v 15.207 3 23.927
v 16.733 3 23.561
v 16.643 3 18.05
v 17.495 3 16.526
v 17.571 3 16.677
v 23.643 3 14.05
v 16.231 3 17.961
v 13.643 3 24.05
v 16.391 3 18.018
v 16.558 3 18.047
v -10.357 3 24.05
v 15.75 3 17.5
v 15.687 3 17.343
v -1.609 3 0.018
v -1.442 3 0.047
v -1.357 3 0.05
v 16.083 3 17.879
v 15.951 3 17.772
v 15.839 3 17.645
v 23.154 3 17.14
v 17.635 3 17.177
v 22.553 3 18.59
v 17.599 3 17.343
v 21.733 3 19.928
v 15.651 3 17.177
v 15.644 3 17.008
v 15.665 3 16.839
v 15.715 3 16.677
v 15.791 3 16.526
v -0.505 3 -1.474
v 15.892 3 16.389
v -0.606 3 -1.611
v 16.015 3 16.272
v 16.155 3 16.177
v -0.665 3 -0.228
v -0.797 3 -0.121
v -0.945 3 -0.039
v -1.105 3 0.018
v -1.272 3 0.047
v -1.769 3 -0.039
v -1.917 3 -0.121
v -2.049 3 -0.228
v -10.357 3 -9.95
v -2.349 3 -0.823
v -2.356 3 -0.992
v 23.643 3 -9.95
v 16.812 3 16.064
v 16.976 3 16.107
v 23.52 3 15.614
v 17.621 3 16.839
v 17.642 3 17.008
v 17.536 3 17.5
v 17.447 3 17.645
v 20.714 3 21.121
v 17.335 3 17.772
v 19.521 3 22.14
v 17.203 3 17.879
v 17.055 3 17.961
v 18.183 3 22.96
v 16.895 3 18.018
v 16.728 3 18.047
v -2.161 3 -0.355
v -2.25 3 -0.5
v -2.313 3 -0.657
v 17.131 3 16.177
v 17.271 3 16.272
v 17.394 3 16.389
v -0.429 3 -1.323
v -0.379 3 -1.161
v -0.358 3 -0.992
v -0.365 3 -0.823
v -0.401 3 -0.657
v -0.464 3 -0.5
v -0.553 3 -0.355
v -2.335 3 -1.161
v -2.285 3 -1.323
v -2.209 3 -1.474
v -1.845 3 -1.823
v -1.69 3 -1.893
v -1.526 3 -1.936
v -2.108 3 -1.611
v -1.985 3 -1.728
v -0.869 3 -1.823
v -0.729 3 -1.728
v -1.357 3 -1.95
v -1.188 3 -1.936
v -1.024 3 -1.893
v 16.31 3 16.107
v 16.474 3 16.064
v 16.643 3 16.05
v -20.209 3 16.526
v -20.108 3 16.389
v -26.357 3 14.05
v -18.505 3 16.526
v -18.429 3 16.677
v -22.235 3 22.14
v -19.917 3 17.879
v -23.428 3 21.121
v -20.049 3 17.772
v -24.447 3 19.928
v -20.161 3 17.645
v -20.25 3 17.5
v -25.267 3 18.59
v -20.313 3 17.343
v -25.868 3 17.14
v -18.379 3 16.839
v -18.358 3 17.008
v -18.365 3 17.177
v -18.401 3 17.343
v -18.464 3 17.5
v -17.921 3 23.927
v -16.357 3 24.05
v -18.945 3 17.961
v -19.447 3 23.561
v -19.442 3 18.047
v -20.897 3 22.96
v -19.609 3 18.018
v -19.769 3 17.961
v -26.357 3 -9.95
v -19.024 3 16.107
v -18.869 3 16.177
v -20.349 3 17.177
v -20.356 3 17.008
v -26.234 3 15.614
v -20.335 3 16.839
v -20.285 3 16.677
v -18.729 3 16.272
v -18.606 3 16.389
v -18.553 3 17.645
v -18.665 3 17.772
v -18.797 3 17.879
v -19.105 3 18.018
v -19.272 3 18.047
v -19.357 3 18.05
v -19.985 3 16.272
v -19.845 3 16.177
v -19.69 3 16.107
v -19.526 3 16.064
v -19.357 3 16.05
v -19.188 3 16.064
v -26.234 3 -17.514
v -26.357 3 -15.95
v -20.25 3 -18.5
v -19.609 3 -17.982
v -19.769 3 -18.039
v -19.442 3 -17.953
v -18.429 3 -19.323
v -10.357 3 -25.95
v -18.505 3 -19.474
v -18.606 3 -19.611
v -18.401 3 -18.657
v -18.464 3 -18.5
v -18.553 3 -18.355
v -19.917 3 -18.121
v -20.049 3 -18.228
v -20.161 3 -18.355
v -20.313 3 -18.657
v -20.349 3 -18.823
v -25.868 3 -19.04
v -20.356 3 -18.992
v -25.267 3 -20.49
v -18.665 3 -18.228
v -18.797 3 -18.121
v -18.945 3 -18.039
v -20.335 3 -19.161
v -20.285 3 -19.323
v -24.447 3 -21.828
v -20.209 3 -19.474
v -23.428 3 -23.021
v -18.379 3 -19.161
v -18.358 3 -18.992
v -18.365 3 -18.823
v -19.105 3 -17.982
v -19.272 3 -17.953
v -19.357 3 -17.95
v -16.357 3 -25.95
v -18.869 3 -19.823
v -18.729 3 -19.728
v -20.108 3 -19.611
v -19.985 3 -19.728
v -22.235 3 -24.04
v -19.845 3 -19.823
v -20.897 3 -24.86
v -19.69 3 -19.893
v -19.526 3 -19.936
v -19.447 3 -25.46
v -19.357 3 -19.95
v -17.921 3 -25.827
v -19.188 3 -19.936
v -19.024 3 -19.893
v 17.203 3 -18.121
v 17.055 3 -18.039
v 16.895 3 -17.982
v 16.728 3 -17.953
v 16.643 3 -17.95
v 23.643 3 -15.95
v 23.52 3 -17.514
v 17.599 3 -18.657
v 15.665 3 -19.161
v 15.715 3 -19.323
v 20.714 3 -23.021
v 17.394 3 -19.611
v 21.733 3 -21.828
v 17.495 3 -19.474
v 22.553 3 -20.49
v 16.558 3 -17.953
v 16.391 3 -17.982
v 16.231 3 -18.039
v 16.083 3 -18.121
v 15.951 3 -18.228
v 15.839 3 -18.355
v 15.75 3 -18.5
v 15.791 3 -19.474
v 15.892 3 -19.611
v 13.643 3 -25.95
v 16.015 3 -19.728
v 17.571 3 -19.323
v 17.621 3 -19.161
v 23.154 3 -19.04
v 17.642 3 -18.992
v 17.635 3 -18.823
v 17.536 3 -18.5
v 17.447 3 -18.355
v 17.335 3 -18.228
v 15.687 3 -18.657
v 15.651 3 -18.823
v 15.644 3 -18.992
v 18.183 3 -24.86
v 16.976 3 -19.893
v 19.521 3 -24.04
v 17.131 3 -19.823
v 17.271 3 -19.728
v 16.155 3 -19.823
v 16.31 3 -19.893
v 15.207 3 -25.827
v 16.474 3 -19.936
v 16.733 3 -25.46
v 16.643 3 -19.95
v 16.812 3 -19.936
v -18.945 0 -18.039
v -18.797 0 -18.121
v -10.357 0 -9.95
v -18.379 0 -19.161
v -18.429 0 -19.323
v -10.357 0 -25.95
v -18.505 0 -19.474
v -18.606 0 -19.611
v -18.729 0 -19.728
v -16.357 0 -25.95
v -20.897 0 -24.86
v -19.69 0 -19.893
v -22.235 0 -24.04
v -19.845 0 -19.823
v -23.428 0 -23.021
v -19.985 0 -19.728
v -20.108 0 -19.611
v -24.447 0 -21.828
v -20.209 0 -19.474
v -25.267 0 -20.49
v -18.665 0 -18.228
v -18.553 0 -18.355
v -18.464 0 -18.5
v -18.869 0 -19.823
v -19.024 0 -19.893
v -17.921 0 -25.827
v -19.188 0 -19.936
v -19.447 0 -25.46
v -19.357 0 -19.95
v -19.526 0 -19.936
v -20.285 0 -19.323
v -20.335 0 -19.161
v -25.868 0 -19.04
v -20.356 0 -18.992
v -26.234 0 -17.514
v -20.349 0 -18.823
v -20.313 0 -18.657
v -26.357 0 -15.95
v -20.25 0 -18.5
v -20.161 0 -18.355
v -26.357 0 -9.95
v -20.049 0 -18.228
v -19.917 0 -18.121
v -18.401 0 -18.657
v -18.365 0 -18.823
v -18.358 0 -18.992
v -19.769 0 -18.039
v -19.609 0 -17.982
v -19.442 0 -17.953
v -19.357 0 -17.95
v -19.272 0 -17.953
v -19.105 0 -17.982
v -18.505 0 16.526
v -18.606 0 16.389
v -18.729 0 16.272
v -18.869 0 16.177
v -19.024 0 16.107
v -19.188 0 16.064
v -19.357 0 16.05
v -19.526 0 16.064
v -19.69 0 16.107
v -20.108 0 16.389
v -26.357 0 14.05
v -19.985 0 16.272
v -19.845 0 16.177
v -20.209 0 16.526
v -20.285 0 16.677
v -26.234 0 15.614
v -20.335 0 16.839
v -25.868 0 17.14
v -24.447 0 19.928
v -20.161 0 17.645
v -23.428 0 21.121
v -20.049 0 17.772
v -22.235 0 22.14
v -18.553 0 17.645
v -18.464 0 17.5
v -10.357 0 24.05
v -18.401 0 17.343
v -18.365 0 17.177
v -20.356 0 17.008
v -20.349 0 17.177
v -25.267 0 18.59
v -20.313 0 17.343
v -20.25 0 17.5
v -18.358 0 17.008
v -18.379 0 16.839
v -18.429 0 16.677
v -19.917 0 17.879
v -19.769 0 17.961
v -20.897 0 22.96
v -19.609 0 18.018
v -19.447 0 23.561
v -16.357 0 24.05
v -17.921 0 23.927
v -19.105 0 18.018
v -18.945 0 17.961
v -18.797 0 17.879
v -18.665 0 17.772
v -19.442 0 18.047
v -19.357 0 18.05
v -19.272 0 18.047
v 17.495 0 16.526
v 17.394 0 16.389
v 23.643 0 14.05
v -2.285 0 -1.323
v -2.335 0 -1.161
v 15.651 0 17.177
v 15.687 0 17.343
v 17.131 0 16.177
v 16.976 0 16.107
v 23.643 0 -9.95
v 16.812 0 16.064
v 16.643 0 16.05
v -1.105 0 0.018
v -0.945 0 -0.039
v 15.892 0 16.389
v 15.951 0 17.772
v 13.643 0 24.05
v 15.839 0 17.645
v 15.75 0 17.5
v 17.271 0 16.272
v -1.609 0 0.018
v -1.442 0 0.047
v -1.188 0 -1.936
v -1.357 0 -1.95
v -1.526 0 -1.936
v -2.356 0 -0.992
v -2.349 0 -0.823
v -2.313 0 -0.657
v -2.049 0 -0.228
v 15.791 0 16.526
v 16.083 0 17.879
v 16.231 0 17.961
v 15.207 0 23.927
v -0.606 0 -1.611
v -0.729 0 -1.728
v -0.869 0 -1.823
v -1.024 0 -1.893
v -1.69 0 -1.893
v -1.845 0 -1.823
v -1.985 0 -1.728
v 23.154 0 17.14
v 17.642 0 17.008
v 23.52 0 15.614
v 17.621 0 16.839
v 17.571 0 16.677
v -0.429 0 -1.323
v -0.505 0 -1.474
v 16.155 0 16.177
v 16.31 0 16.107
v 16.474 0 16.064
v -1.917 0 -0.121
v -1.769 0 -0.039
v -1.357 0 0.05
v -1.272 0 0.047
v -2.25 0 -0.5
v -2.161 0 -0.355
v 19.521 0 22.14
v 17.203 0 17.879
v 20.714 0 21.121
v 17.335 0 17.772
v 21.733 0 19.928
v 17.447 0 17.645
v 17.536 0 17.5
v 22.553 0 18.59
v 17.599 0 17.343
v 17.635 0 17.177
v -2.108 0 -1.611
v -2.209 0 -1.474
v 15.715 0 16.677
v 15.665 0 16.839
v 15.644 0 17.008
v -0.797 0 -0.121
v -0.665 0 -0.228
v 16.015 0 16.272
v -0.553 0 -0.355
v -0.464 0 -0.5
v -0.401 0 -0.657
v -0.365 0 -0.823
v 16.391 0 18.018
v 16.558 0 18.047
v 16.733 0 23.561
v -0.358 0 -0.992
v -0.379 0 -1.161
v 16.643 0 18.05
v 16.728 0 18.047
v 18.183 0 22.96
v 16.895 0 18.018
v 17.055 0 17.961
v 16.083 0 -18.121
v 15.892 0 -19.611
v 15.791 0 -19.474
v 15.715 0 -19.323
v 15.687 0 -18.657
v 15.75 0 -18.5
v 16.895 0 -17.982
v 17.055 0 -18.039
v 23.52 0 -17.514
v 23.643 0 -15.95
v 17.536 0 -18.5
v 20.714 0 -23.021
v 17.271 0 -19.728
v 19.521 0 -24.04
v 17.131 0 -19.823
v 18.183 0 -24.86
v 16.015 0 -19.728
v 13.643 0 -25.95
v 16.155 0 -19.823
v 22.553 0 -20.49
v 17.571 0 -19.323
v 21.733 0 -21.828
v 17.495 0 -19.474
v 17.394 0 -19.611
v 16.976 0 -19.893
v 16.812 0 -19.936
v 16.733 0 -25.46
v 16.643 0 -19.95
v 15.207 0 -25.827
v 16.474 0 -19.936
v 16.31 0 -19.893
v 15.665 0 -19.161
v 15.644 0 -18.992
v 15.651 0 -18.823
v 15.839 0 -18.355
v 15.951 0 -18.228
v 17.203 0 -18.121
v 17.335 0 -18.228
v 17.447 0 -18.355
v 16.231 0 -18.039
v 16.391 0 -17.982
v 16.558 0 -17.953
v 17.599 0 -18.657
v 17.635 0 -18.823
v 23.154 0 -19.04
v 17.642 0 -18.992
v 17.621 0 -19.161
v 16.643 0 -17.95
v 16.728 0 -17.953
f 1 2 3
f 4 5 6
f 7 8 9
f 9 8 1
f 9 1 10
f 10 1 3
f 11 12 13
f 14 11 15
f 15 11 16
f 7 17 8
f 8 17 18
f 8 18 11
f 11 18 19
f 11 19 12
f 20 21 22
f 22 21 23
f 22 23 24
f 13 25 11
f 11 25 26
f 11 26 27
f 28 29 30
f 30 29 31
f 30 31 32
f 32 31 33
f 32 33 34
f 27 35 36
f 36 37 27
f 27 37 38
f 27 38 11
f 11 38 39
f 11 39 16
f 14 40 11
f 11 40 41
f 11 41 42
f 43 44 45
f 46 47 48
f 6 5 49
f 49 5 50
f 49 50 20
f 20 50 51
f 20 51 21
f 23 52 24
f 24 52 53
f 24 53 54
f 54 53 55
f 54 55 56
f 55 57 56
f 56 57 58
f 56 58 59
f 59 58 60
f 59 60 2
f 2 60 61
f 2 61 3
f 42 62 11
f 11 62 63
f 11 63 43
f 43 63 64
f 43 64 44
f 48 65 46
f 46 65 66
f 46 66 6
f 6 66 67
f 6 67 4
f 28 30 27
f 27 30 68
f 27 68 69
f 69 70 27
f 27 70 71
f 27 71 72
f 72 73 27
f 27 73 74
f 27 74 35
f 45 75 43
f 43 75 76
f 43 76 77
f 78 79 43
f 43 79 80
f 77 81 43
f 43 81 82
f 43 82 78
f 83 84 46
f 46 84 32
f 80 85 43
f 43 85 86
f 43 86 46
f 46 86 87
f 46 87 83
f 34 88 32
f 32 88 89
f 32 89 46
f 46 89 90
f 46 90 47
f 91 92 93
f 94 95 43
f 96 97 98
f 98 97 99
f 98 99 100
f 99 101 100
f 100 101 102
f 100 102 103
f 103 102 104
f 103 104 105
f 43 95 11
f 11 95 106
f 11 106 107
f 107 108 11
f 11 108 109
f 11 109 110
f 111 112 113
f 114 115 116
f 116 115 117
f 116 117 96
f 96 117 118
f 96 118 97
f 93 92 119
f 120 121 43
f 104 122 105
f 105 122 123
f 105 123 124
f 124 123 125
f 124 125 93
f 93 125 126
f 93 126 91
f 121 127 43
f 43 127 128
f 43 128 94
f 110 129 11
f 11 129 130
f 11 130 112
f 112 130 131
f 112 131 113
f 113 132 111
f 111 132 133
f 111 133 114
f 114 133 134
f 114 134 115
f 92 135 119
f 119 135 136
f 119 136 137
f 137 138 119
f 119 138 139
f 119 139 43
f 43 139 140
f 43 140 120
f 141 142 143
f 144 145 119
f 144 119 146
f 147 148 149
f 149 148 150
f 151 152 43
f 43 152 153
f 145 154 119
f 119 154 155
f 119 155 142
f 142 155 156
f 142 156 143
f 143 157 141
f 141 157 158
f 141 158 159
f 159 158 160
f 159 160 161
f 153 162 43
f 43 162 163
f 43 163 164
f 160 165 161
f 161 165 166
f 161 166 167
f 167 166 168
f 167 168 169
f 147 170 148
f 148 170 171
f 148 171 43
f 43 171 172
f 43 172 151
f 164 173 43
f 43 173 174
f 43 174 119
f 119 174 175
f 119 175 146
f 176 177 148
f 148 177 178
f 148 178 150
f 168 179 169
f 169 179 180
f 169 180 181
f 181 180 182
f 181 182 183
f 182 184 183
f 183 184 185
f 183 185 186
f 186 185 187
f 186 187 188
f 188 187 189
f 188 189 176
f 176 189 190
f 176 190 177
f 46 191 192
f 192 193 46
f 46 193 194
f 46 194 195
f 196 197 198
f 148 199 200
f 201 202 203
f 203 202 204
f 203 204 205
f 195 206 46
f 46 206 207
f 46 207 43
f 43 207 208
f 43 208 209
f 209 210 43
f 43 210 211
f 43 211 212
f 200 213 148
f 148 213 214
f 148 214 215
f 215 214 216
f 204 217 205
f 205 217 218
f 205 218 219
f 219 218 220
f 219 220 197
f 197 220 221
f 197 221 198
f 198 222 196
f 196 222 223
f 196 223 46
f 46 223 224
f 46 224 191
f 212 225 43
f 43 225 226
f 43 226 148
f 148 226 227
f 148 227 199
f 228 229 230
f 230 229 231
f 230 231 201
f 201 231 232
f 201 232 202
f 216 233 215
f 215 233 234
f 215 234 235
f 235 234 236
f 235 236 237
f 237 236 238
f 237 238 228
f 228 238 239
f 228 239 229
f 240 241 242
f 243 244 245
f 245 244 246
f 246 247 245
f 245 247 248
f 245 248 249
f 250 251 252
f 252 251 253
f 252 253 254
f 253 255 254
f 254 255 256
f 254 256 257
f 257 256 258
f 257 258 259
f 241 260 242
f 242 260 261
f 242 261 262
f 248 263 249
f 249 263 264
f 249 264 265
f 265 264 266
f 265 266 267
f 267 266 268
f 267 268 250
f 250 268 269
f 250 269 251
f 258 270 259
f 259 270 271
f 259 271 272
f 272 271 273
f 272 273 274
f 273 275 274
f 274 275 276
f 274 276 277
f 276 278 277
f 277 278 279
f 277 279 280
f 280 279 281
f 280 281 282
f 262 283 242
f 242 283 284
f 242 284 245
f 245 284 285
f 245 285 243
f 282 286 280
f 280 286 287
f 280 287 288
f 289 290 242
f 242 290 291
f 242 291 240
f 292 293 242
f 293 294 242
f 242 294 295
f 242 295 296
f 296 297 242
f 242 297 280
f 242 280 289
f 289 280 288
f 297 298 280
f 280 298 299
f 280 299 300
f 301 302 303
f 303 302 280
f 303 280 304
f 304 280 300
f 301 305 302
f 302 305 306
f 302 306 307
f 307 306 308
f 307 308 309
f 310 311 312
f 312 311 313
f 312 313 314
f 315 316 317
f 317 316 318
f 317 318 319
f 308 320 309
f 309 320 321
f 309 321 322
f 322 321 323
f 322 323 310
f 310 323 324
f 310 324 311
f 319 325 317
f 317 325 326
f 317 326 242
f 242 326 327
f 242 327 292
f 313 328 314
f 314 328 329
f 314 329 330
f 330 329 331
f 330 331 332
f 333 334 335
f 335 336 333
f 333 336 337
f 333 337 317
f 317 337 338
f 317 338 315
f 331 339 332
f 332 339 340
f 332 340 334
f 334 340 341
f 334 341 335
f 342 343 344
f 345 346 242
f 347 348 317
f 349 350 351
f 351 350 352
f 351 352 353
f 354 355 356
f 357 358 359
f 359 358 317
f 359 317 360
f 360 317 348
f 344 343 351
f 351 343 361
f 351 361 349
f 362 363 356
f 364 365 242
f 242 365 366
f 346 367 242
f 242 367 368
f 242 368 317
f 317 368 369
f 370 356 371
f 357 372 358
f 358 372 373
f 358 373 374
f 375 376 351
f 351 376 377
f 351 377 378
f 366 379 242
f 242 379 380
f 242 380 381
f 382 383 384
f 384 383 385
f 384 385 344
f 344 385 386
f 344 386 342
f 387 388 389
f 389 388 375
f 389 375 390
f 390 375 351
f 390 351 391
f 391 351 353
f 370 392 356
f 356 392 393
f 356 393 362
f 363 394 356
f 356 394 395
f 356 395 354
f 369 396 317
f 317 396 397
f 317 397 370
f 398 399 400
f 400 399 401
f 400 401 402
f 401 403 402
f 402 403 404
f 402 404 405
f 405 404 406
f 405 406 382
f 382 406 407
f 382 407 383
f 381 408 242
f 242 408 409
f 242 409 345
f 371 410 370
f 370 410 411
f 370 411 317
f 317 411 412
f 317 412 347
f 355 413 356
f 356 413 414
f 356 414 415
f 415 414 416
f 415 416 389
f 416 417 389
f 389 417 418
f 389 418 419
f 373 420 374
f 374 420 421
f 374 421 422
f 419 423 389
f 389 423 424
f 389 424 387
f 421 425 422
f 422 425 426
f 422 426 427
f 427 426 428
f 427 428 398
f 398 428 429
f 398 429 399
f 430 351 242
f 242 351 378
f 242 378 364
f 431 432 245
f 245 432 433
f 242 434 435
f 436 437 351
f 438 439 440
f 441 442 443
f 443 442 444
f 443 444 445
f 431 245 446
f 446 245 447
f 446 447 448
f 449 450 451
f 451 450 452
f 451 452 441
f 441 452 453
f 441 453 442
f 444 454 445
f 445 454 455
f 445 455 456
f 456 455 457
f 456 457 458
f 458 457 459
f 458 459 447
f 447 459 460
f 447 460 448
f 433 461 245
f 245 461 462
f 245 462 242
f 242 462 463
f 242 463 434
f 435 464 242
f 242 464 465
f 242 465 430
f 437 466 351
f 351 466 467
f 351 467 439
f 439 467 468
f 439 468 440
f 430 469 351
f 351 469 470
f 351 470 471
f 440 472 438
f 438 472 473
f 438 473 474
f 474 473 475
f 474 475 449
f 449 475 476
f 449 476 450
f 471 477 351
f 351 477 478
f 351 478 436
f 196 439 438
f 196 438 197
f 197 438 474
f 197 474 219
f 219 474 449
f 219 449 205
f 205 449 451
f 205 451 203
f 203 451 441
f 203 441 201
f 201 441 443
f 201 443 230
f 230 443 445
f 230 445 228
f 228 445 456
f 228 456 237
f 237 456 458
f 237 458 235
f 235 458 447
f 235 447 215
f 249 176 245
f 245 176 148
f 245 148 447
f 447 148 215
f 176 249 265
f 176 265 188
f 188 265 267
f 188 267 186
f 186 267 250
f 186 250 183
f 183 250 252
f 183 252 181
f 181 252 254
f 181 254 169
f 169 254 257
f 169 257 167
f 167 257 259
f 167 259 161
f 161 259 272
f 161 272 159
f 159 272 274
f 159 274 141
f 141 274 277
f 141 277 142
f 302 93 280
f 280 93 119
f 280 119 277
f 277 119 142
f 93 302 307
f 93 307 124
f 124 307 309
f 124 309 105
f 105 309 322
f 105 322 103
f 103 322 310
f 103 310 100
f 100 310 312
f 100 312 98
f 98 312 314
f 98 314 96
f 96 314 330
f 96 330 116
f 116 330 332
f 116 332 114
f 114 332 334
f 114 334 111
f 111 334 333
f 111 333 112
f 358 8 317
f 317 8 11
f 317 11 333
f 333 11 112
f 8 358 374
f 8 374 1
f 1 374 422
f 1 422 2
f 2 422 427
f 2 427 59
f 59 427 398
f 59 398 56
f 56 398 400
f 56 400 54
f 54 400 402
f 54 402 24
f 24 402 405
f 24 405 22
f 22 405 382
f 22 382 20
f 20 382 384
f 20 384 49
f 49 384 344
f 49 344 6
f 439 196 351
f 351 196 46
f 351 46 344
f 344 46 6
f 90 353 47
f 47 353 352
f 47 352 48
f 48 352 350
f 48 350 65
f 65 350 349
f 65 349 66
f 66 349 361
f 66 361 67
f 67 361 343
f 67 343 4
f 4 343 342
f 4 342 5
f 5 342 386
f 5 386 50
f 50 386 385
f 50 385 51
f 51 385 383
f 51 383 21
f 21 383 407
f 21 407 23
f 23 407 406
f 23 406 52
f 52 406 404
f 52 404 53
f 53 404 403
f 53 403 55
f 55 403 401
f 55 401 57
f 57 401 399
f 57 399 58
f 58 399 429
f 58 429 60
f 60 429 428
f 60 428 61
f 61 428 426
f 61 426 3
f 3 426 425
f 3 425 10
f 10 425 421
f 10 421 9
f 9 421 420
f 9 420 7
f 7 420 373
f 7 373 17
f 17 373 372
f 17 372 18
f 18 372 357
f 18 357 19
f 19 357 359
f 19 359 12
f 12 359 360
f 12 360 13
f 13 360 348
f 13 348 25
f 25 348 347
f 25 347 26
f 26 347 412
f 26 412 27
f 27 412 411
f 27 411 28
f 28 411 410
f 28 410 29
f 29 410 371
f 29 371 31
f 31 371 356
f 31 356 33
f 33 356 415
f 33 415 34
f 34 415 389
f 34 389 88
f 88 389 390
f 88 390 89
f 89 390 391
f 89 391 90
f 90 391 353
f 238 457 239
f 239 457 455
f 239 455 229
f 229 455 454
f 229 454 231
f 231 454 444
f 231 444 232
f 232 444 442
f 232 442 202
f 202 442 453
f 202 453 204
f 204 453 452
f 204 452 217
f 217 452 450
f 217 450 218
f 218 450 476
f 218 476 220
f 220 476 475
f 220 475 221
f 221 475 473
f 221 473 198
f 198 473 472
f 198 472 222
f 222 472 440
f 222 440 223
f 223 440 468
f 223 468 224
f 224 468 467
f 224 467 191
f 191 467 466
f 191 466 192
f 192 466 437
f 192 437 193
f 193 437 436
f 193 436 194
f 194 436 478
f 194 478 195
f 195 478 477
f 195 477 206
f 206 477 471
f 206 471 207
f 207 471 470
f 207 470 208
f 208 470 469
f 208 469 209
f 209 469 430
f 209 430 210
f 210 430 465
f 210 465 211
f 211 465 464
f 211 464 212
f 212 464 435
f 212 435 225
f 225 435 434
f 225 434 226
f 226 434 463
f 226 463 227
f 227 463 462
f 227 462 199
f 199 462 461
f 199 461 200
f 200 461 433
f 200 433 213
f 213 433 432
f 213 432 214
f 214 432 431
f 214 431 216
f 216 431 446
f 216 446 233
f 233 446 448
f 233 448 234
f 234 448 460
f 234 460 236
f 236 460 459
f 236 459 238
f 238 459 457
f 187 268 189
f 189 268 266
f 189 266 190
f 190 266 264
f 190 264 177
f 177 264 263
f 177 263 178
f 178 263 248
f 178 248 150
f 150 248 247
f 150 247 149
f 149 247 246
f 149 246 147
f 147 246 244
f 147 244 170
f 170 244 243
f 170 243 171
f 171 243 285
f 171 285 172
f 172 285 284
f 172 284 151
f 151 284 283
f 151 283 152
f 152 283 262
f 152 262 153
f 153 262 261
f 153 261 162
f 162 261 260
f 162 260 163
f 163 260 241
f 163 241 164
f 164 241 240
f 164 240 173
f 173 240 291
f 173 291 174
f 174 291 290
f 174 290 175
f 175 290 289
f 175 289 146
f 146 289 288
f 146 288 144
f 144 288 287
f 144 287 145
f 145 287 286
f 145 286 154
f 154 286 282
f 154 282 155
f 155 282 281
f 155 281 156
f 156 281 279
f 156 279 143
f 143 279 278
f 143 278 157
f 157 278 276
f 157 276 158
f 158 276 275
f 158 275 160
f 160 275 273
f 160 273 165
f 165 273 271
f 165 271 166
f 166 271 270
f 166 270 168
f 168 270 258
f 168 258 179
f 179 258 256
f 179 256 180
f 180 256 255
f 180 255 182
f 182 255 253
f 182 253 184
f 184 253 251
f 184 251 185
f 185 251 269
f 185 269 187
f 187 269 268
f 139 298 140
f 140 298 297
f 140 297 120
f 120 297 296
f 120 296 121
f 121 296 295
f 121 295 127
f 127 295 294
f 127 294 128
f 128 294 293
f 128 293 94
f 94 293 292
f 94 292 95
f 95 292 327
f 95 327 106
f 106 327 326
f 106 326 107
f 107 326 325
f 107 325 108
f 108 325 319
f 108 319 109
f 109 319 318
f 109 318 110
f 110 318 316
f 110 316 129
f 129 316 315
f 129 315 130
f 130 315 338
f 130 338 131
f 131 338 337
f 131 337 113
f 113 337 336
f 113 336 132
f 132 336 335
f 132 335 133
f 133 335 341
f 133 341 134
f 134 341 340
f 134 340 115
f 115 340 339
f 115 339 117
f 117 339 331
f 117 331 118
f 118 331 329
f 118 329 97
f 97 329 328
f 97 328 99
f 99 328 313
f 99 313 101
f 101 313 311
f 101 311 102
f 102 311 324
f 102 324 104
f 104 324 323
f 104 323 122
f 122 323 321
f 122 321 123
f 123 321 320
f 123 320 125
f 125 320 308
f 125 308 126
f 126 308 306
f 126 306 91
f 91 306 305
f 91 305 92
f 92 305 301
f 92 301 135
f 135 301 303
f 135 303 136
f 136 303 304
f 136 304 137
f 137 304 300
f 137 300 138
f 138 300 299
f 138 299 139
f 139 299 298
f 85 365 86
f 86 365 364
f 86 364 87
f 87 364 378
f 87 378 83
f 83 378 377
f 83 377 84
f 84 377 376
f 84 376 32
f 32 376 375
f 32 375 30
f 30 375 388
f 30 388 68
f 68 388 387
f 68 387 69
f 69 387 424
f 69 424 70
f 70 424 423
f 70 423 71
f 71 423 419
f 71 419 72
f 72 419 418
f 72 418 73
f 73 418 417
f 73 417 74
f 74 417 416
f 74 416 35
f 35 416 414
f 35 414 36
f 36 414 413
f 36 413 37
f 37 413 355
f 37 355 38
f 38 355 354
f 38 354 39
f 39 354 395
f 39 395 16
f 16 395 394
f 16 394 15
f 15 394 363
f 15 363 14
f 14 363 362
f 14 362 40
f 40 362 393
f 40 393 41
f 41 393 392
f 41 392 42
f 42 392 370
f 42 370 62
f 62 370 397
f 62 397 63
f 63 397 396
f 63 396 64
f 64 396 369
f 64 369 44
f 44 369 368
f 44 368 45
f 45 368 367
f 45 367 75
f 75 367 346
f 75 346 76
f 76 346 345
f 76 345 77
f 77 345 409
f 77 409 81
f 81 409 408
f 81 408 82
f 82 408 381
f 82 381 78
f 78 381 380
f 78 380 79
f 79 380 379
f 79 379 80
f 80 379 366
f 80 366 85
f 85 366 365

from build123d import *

# Parameters (mm, degrees)
SKETCH_4_R      = 1
EXTRUDE_1_DEPTH = 3


with BuildPart() as part:
    # ｽｹｯﾁ4 → ﾎﾞｽ - 押し出し1 (new body)
    with BuildSketch(Plane(origin=(0, 0, 0), x_dir=(1, 0, 0), z_dir=(0, 1, 0))):
        with BuildLine():
            Line((13.643014387, 25.949889929), (-16.356985613, 25.949889929))
            ThreePointArc((-16.356985613, 25.949889929), (-23.428053425, 23.020957741), (-26.356985613, 15.949889929))
            Line((-26.356985613, 15.949889929), (-26.356985613, -14.050110071))
            ThreePointArc((-26.356985613, -14.050110071), (-23.428053425, -21.121177883), (-16.356985613, -24.050110071))
            Line((-16.356985613, -24.050110071), (13.643014387, -24.050110071))
            ThreePointArc((13.643014387, -24.050110071), (20.714082199, -21.121177883), (23.643014387, -14.050110071))
            Line((23.643014387, -14.050110071), (23.643014387, 15.949889929))
            ThreePointArc((23.643014387, 15.949889929), (20.714082199, 23.020957741), (13.643014387, 25.949889929))
        make_face()
        with Locations(Location((16.643014387, -17.050110071, 0), (0, 0, 270))):
            Circle(SKETCH_4_R, mode=Mode.SUBTRACT)
        with Locations(Location((16.643014387, 18.949889929, 0), (0, 0, 270))):
            Circle(SKETCH_4_R, mode=Mode.SUBTRACT)
        with Locations(Location((-19.356985613, 18.949889929, 0), (0, 0, 270))):
            Circle(SKETCH_4_R, mode=Mode.SUBTRACT)
        with Locations(Location((-19.356985613, -17.050110071, 0), (0, 0, 270))):
            Circle(SKETCH_4_R, mode=Mode.SUBTRACT)
        with Locations(Location((-1.356985613, 0.949889929, 0), (0, 0, 270))):
            Circle(SKETCH_4_R, mode=Mode.SUBTRACT)
    extrude(amount=EXTRUDE_1_DEPTH)


solid = part.part
